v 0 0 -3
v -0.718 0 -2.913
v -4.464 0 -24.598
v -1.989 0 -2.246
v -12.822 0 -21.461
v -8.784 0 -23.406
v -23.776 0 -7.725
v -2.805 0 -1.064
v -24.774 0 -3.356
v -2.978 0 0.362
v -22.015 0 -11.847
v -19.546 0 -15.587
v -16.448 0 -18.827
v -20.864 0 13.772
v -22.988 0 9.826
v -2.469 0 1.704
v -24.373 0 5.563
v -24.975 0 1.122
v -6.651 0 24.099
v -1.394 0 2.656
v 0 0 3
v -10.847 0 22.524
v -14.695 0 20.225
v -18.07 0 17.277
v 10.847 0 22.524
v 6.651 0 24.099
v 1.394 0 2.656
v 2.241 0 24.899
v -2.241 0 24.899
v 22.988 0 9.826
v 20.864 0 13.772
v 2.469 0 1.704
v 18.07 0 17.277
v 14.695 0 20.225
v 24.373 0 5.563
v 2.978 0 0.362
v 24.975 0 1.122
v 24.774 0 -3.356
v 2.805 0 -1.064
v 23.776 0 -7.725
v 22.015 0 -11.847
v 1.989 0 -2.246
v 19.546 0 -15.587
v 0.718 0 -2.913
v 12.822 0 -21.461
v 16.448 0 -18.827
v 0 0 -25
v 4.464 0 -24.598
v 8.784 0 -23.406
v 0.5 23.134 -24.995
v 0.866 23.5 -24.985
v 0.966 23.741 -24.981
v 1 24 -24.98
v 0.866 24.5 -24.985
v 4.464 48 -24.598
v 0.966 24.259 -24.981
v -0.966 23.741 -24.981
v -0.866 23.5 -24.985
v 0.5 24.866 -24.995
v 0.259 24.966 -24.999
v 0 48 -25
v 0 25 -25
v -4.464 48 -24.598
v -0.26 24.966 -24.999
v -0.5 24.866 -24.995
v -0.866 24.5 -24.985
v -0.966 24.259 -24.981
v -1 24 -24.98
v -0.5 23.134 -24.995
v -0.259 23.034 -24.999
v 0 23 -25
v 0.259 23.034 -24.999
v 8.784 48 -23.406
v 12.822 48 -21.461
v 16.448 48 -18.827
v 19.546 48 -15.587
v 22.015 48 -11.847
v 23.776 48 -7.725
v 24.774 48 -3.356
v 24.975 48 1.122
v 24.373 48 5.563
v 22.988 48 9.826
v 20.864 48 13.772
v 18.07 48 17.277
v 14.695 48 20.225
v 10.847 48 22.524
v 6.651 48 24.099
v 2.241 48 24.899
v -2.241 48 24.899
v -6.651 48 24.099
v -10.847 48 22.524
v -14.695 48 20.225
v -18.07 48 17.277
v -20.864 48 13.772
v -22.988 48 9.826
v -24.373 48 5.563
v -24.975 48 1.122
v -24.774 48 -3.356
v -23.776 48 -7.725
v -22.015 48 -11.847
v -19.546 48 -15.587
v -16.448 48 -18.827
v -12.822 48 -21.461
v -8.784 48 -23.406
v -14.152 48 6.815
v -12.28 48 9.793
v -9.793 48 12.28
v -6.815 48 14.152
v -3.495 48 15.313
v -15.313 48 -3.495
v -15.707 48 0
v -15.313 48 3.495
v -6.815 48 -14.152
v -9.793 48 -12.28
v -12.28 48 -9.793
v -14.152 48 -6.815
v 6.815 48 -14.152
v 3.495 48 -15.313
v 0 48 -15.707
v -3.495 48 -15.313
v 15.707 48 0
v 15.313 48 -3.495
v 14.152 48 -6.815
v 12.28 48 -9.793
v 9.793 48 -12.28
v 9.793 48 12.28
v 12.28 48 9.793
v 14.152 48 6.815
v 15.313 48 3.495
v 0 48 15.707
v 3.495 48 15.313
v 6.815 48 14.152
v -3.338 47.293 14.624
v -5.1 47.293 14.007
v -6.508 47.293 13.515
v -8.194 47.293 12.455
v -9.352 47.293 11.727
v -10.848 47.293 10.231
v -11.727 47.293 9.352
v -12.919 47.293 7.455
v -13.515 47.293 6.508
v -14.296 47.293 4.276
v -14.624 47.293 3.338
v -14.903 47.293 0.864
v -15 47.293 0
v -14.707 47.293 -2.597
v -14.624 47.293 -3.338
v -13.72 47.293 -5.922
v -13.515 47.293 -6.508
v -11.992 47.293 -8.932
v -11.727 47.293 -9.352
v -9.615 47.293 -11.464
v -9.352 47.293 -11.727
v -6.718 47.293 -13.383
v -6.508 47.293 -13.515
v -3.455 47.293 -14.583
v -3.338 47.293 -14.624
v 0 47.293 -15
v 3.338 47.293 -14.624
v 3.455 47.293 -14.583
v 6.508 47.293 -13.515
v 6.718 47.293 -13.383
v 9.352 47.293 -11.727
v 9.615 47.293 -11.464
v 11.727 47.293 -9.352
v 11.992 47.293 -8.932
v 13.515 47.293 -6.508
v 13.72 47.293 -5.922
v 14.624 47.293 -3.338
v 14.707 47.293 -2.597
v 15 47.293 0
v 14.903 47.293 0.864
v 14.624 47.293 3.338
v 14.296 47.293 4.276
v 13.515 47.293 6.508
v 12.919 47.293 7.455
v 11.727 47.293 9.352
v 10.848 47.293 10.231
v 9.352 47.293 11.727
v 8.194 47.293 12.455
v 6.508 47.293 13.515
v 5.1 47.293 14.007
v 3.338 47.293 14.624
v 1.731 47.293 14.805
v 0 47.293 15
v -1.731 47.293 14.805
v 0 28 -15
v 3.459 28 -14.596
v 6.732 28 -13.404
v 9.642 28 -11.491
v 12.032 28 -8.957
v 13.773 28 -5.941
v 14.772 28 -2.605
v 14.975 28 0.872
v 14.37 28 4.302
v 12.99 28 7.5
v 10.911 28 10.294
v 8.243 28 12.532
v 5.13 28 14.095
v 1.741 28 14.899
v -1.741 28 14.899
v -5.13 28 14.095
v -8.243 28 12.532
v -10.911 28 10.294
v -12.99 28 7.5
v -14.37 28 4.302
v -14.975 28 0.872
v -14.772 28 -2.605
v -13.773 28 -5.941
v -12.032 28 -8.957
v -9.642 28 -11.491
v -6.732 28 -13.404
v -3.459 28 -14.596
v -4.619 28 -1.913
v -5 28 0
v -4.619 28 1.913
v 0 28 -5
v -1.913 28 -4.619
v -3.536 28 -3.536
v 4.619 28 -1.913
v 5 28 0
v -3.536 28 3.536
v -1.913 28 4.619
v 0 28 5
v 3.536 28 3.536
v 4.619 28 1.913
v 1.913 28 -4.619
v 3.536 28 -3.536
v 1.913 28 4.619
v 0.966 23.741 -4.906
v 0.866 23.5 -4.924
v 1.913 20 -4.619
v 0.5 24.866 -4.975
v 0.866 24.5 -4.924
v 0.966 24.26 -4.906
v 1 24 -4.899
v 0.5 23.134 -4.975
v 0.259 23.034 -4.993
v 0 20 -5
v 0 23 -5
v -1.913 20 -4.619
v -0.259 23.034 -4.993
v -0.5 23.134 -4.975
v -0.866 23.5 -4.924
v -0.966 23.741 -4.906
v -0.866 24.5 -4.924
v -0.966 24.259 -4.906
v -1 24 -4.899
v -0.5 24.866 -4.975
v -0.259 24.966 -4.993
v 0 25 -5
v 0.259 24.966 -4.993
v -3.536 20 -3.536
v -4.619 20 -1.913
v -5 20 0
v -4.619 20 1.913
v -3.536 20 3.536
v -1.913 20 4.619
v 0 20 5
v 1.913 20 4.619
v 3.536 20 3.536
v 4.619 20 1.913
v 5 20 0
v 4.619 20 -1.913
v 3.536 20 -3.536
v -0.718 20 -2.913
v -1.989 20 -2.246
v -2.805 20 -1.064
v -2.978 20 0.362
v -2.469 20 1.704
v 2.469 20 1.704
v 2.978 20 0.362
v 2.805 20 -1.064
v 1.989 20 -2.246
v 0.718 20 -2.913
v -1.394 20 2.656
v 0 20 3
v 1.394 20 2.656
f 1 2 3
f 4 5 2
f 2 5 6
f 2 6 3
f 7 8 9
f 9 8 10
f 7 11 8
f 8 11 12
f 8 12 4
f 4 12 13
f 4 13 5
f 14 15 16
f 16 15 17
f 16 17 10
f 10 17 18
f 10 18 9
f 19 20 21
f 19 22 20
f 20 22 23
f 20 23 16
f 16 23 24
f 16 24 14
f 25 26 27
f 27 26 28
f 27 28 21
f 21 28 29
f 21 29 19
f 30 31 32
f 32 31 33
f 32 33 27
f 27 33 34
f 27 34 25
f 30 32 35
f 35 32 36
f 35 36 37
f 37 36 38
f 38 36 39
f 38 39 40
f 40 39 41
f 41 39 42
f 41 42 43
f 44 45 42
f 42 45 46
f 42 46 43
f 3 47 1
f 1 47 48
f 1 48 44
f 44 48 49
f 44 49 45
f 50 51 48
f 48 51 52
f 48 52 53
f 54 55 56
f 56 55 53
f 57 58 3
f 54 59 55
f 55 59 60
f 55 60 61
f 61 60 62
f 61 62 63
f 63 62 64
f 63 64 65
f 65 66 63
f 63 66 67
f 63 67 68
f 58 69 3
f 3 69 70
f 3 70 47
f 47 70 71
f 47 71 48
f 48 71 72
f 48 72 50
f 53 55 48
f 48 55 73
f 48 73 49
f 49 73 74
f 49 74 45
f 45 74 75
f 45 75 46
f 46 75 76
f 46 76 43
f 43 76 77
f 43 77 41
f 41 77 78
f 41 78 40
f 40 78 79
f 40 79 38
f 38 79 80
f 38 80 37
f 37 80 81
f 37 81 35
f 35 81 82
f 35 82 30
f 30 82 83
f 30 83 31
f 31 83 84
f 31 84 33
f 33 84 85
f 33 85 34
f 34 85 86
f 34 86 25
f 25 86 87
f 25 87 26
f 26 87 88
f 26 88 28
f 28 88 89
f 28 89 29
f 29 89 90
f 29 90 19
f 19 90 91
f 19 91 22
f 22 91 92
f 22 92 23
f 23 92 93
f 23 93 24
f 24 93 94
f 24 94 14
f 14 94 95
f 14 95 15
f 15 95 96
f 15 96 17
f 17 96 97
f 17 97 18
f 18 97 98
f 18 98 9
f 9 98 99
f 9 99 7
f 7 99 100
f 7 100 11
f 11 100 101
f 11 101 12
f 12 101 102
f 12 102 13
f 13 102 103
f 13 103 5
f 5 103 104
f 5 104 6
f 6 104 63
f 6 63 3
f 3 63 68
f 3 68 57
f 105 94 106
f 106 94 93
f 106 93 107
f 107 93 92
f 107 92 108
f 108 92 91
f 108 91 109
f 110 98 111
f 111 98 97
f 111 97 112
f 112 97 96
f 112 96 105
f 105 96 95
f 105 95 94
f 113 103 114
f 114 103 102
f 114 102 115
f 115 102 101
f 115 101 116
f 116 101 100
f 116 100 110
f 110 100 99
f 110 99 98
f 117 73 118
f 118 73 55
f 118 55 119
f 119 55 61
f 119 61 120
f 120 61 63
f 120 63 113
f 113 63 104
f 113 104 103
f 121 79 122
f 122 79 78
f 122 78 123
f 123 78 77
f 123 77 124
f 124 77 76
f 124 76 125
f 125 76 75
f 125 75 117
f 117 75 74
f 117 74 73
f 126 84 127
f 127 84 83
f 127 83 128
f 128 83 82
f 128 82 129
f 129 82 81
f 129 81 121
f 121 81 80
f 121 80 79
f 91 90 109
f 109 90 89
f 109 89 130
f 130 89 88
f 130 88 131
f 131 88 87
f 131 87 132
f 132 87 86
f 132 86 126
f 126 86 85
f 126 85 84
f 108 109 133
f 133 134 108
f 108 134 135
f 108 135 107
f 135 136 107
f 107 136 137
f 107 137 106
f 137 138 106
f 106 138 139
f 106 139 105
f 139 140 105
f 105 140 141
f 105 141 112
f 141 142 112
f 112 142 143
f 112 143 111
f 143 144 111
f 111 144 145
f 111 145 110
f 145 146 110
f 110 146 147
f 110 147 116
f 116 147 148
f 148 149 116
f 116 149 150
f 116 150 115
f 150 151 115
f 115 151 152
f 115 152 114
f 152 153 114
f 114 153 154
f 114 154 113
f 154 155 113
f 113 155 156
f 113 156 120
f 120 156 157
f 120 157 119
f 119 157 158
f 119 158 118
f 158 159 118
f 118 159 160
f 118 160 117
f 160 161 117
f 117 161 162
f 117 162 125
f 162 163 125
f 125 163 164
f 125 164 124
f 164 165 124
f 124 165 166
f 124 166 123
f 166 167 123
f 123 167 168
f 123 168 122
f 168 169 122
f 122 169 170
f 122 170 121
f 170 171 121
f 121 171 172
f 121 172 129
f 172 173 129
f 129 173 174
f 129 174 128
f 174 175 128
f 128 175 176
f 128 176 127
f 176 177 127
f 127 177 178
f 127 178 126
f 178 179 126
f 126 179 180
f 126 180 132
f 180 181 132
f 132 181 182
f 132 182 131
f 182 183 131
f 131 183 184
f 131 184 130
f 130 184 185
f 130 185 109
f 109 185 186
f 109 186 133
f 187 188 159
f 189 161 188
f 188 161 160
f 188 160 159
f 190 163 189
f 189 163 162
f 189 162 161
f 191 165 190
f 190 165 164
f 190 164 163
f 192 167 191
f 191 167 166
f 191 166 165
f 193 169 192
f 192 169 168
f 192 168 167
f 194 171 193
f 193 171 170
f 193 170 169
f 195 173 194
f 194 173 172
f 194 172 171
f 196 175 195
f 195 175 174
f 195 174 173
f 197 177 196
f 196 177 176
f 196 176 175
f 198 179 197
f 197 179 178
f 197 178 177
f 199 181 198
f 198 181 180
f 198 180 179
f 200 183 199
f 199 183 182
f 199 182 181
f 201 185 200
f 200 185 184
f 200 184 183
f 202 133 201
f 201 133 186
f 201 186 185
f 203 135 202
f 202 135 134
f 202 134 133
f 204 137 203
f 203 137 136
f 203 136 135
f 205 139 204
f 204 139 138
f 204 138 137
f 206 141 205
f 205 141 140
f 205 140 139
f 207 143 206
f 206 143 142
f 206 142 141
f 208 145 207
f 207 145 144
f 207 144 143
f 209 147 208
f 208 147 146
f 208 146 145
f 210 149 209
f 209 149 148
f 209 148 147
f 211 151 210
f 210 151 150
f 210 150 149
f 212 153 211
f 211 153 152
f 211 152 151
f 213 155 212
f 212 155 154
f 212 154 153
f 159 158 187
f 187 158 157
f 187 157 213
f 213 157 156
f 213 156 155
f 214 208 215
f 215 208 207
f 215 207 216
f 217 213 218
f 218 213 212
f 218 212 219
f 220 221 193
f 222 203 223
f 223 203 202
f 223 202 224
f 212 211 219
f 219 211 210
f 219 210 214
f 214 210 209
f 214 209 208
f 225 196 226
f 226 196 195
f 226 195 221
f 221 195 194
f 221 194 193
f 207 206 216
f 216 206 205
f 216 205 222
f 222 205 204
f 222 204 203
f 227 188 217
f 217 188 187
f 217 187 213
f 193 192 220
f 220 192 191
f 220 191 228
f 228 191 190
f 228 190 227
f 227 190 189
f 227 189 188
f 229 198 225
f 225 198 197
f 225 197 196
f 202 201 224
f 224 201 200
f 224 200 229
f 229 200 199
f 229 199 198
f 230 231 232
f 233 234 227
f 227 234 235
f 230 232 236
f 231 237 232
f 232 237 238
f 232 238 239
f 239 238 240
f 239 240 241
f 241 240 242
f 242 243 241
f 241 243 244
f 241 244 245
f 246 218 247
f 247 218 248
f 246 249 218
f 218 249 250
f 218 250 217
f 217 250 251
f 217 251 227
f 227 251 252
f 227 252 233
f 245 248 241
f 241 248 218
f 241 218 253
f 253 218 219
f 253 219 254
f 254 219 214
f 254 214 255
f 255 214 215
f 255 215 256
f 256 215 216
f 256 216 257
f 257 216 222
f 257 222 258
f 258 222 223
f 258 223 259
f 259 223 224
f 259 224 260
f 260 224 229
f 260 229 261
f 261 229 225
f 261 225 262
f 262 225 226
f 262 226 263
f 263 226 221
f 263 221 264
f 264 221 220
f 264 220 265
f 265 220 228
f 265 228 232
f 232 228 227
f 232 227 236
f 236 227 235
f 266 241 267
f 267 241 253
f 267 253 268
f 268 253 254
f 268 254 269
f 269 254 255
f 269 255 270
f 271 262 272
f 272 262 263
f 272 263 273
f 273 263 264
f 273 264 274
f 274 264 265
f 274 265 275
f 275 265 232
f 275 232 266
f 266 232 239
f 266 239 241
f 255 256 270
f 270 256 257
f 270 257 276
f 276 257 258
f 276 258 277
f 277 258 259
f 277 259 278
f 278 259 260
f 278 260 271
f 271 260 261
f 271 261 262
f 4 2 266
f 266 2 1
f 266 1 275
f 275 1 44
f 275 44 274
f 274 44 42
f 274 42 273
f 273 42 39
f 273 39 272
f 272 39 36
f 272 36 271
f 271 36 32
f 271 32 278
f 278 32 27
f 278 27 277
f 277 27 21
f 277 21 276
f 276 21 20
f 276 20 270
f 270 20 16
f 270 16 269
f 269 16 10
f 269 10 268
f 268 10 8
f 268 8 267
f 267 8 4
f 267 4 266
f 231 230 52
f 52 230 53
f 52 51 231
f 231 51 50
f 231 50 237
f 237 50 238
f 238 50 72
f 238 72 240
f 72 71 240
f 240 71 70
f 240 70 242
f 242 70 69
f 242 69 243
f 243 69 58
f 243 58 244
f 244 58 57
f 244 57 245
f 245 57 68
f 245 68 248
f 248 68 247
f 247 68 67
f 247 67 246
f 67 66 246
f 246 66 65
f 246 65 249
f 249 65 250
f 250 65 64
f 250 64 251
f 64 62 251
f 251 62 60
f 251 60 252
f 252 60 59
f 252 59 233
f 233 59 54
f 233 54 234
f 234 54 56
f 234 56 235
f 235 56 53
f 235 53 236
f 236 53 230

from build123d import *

# Parameters (mm, degrees)
SKETCH4_R          = 5
CUT_EXTRUDE1_DEPTH = 8
SKETCH5_R          = 3
CUT_EXTRUDE2_DEPTH = 48
SKETCH6_R          = 1
CUT_EXTRUDE3_DEPTH = 48


with BuildPart() as part:
    # Sketch2 → Revolve1 (revolve)
    with BuildSketch(Plane.XY, mode=Mode.PRIVATE) as revolve1_sk:
        Polygon((0, 0), (25, 0), (25, 3.419684485), (25, 48), (15.707106781, 48), (15, 47.292893219), (15, 28), (0, 28), align=None)
    revolve(revolve1_sk.sketch.rotate(Axis((0, 0, 0), (0, 1, 0)), 90), axis=Axis((0, 0, 0), (0, 1, 0)))

    # Sketch4 → Cut-Extrude1 (cut)
    with BuildSketch(Plane(origin=(0, 28, 0), x_dir=(1, 0, 0), z_dir=(0, 1, 0))):
        with Locations(Location((0, 0, 0), (0, 0, 270))):
            Circle(SKETCH4_R)
    extrude(amount=-CUT_EXTRUDE1_DEPTH, mode=Mode.SUBTRACT)

    # Sketch5 → Cut-Extrude2 (cut)
    with BuildSketch(Plane(origin=(0, 20, 0), x_dir=(1, 0, 0), z_dir=(0, 1, 0))):
        with Locations(Location((0, 0, 0), (0, 0, 270))):
            Circle(SKETCH5_R)
    extrude(amount=-CUT_EXTRUDE2_DEPTH, mode=Mode.SUBTRACT)

    # Sketch6 → Cut-Extrude3 (cut)
    with BuildSketch(Plane.XY):
        with Locations((0, 24)):
            Circle(SKETCH6_R)
    extrude(amount=-CUT_EXTRUDE3_DEPTH, mode=Mode.SUBTRACT)


solid = part.part
